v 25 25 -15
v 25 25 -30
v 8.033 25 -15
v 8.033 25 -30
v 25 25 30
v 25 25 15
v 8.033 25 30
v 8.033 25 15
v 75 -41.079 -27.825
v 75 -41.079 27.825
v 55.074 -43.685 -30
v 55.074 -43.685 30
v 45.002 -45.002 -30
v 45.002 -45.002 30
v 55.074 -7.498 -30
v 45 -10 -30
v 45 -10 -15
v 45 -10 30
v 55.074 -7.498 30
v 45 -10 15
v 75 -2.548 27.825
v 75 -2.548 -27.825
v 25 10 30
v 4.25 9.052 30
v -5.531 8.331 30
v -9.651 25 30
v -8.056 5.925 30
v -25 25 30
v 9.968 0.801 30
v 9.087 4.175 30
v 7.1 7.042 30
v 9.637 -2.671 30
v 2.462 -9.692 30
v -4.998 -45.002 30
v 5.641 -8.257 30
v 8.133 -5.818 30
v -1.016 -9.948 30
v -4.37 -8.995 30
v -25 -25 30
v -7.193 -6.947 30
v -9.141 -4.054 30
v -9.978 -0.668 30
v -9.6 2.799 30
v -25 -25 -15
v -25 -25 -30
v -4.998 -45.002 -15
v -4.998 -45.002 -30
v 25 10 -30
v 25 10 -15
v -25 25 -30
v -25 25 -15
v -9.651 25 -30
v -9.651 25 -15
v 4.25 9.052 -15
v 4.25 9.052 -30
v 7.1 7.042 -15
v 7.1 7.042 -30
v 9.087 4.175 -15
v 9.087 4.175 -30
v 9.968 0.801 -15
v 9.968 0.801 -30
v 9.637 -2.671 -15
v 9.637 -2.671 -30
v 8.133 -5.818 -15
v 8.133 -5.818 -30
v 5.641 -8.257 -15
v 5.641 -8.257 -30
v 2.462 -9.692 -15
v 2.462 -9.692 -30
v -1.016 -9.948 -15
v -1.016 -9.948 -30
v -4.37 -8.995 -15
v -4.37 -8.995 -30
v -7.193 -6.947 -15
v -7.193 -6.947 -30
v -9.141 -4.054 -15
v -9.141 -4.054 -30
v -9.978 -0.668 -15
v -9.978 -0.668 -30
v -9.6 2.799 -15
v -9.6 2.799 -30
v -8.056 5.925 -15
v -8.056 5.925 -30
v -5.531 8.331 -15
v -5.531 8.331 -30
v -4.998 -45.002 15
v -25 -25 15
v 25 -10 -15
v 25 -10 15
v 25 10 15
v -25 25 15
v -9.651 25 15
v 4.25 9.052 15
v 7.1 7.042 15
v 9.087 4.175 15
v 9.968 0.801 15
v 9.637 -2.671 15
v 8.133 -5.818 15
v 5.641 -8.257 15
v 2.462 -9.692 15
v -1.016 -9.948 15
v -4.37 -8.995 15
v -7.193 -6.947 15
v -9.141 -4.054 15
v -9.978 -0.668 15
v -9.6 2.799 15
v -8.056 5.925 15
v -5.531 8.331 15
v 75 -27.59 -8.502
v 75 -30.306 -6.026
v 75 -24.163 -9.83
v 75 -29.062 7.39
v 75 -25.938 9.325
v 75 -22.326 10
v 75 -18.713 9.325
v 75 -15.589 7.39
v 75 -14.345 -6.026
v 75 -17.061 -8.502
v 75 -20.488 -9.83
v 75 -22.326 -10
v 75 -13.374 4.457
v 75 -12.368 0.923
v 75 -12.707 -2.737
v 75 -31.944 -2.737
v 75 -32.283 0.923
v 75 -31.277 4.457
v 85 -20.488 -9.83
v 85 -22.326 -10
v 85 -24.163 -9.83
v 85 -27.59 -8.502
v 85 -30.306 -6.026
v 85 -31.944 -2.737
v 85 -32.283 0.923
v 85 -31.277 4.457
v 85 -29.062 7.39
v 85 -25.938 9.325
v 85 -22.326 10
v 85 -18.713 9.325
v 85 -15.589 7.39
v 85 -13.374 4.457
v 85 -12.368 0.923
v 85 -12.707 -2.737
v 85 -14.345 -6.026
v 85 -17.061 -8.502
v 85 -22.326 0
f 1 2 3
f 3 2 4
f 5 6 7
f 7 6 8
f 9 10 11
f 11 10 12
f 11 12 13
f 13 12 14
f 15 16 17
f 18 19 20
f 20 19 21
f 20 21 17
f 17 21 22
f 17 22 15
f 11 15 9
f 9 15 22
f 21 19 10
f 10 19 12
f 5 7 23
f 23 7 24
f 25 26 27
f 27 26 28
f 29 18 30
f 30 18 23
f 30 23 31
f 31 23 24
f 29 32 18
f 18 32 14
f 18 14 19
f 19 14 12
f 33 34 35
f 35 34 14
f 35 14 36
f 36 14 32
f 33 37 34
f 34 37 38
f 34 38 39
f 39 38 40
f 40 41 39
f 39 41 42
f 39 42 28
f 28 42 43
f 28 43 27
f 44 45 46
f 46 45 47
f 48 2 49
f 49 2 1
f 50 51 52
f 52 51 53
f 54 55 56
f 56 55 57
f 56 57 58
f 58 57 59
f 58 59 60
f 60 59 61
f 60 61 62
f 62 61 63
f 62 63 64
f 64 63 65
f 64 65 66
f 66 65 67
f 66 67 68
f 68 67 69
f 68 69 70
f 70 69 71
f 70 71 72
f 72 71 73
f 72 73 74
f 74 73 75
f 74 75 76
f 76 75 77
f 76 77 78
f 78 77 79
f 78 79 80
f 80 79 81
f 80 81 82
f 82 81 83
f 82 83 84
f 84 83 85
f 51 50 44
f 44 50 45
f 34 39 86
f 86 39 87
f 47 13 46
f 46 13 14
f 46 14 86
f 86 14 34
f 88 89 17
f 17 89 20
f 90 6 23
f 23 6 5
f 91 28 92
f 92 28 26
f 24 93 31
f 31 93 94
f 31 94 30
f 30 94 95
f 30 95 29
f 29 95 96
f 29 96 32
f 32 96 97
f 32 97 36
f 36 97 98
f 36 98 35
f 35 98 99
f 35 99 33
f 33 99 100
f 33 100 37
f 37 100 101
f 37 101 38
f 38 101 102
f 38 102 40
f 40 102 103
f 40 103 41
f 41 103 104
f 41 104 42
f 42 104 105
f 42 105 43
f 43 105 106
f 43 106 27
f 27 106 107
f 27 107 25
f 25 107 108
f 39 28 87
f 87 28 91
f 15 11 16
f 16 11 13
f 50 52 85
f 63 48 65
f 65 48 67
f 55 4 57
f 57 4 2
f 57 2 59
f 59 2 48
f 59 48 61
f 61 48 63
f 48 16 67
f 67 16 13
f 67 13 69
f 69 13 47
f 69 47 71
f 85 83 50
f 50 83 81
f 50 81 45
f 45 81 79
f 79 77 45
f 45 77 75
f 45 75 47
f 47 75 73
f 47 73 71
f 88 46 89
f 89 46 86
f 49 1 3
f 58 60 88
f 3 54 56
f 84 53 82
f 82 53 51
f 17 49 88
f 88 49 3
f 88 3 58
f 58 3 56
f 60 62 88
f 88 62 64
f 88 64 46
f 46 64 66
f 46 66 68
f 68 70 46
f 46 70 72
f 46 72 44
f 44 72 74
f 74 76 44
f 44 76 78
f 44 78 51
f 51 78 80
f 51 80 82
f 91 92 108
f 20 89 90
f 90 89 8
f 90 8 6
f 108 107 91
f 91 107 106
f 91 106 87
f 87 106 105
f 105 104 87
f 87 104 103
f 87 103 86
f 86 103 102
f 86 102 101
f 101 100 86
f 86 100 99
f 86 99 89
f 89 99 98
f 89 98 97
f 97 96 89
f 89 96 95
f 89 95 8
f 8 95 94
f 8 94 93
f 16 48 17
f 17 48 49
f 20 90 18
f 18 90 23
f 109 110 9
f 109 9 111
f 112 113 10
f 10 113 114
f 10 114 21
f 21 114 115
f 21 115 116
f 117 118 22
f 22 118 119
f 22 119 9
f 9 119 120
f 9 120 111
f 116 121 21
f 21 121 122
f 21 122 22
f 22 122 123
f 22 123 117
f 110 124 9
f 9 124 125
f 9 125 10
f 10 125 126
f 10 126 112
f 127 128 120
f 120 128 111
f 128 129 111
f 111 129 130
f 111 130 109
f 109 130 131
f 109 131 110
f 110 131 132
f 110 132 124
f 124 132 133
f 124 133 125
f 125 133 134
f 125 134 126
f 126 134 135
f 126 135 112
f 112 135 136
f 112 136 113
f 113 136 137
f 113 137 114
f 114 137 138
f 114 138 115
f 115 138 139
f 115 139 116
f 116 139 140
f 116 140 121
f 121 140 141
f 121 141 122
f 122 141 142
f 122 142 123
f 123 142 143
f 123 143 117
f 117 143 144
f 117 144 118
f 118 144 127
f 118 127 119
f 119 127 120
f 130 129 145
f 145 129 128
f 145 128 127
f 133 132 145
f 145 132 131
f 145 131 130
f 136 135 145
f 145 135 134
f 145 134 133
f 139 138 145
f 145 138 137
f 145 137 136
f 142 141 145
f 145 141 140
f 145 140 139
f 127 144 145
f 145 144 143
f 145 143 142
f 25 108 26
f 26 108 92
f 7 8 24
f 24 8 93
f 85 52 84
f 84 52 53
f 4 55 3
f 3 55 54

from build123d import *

# Parameters (mm, degrees)
SKETCH1_R               = 10
BOSS_EXTRUDE2_DEPTH     = 30
SKETCH4_R               = 10
CUT_EXTRUDE1_DEPTH      = 15
CHAMFER1_SIZE           = 20
CUT_EXTRUDE2_DEPTH      = 174.638139858
CUT_EXTRUDE2_DEPTH_BACK = 174.638139858
BOSS_EXTRUDE3_DEPTH     = 45
CUT_EXTRUDE3_DEPTH      = 198.547978004
CUT_EXTRUDE3_DEPTH_BACK = 15
SKETCH6_3_R             = 9
SKETCH8_W               = 15
SKETCH8_H               = 36
BOSS_EXTRUDE4_DEPTH     = 45.000002
SKETCH10_R              = 9
CUT_EXTRUDE4_DEPTH      = 198.547978004
BOSS_EXTRUDE5_DEPTH     = 10
CHAMFER2_SIZE           = 12
CUT_EXTRUDE5_DEPTH      = 40
CUT_EXTRUDE6_DEPTH      = 217.852953896
CUT_EXTRUDE6_DEPTH_BACK = 217.852953896
SKETCH14_OUTSIDE_W      = 287.488
SKETCH14_OUTSIDE_H      = 112.488
SKETCH14_OUTSIDE_W_2    = 100
SKETCH14_OUTSIDE_H_2    = 60
SKETCH15_R              = 10
BOSS_EXTRUDE6_DEPTH     = 10
CUT_EXTRUDE7_REACH      = 115.359


# Some blends are built 0.0001 mm under size
with BuildPart() as part:
    # Sketch1 → Boss-Extrude2 (new, symmetric)
    # profile 1 of 3: a face of its own
    with BuildSketch(Plane.XY):
        Polygon((25, -10), (-4.997737685, -45.002262315), (-25, -25), (-25, 25), (25, 25), align=None)
        Circle(SKETCH1_R, mode=Mode.SUBTRACT)
    # profile 2 of 3: a face of its own
    with BuildSketch(Plane.XY):
        Polygon((45, -10), (25, -10), (-4.997737685, -45.002262315), (45.002262315, -45.002262315), (75, -41.079226753), (75, -2.548159698), align=None)
    # profile 3 of 3: a face of its own
    with BuildSketch(Plane.XY):
        Polygon((130, 11.113547523), (75, -2.548159698), (75, -41.079226753), (130, -33.886452477), (165, -33.886452477), (165, 11.113547523), align=None)
    extrude(amount=BOSS_EXTRUDE2_DEPTH, both=True)

    # Sketch4 → Cut-Extrude1 (cut, symmetric)
    with BuildSketch(Plane.XY):
        Polygon((25, -10), (-4.997737685, -45.002262315), (-25, -25), (-25, 25), (25, 25), align=None)
        Circle(SKETCH4_R, mode=Mode.SUBTRACT)
    extrude(amount=CUT_EXTRUDE1_DEPTH, both=True, mode=Mode.SUBTRACT)

    # Chamfer1
    chamfer1_edges = [part.edges().sort_by_distance(p)[0] for p in [
        (25, -10, -22.5),
        (25, -10, 22.5),
    ]]
    chamfer(chamfer1_edges, length=CHAMFER1_SIZE - 0.0001)  # a hair under: the kernel refuses the full size

    # Sketch5 → Cut-Extrude2 (cut, two sides: drawn at the far end of the back side and taken through both)
    with BuildSketch(Plane(origin=(0, 0, 0), x_dir=(1, 0, 0), z_dir=(0, 1, 0)).offset(-CUT_EXTRUDE2_DEPTH_BACK)):
        Polygon((165, -30), (165, -18), (55.074227224, -30), align=None)
        Polygon((165, 18), (165, 30), (55.074227224, 30), align=None)
    extrude(amount=CUT_EXTRUDE2_DEPTH + CUT_EXTRUDE2_DEPTH_BACK, mode=Mode.SUBTRACT)

    # Sketch6 → Boss-Extrude3 (add)
    with BuildSketch(Plane(origin=(165, 0, 0), x_dir=(0, 0, -1), z_dir=(1, 0, 0))):
        with BuildLine():
            Line((-18, -33.886452477), (18, -33.886452477))
            Line((18, -33.886452477), (18, -17.886452477))
            ThreePointArc((18, -17.886452477), (0, -25.375680921), (-18, -17.886452477))
            Line((-18, -17.886452477), (-18, -33.886452477))
        make_face()
    extrude(amount=BOSS_EXTRUDE3_DEPTH)

    # Sketch6<3> → Cut-Extrude3 (cut, two sides: drawn at the far end of the back side and taken through both)
    with BuildSketch(Plane(origin=(165, 0, 0), x_dir=(0, 0, -1), z_dir=(1, 0, 0)).offset(-CUT_EXTRUDE3_DEPTH_BACK)):
        with Locations(Location((0, -1.886452477, 0), (0, 0, 90))):
            Circle(SKETCH6_3_R)
    extrude(amount=CUT_EXTRUDE3_DEPTH + CUT_EXTRUDE3_DEPTH_BACK, mode=Mode.SUBTRACT)

    # Sketch8 → Boss-Extrude4 (add)
    with BuildSketch(Plane.XZ.offset(33.886452477)):
        with Locations((202.5, 0)):
            Rectangle(SKETCH8_W, SKETCH8_H)
    extrude(amount=-BOSS_EXTRUDE4_DEPTH)

    # Sketch10 → Cut-Extrude4 (cut, through all)
    with BuildSketch(Plane(origin=(165, 0, 0), x_dir=(0, 0, -1), z_dir=(1, 0, 0))):
        with Locations(Location((0, -1.886452477, 0), (0, 0, 90))):
            Circle(SKETCH10_R)
    extrude(amount=CUT_EXTRUDE4_DEPTH, mode=Mode.SUBTRACT)

    # Sketch11 → Boss-Extrude5 (add)
    with BuildSketch(Plane.XZ.offset(33.886452477)):
        Polygon((130, 21.82076004), (130, -21.82076004), (165, -18), (210, -18), (210, 18), (165, 18), align=None)
    extrude(amount=BOSS_EXTRUDE5_DEPTH)

    # Chamfer2
    # the kernel refuses this chamfer: 12 mm, written as the material it takes off along each edge
    with BuildSketch(Plane(origin=(130, -43.886452477, 52.680955896), x_dir=(-0.02749587661058907, 0.9996219169112965, 0), z_dir=(0, 0, -1))) as chamfer2_piece_1_section:
        Polygon((CHAMFER2_SIZE * 0.999621916911, CHAMFER2_SIZE * 0.0274958766106), (-CHAMFER2_SIZE * 0.0274958766106, CHAMFER2_SIZE * 0.999621916911), (0, 0), align=None)
    chamfer2_piece_1 = extrude(amount=105.361911791, mode=Mode.PRIVATE)
    chamfer2_piece_1 = split(chamfer2_piece_1, bisect_by=Plane(origin=(133.216907805, -33.465752628, 0), z_dir=(0.1296735244167249, -0.9915567442488328, 0)), keep=Keep.TOP, mode=Mode.PRIVATE)
    add(chamfer2_piece_1, mode=Mode.SUBTRACT)

    # Sketch13 → Cut-Extrude5 (cut)
    with BuildSketch(Plane.XY.offset(18)):
        with BuildLine():
            Line((165, -17.886452477), (195, -17.886452477))
            ThreePointArc((195, -17.886452477), (180, -25.224548687), (165, -17.886452477))
        make_face()
    extrude(amount=-CUT_EXTRUDE5_DEPTH, mode=Mode.SUBTRACT)

    # Sketch14 outside → Cut-Extrude6 (cut, two sides: drawn at the far end of the back side and taken through both)
    with BuildSketch(Plane(origin=(0, 0, 0), x_dir=(1, 0, 0), z_dir=(0, 1, 0)).offset(-CUT_EXTRUDE6_DEPTH_BACK)):
        with Locations((92.5, 0)):
            Rectangle(SKETCH14_OUTSIDE_W, SKETCH14_OUTSIDE_H)
        with Locations((25, 0)):
            Rectangle(SKETCH14_OUTSIDE_W_2, SKETCH14_OUTSIDE_H_2, mode=Mode.SUBTRACT)
    extrude(amount=CUT_EXTRUDE6_DEPTH + CUT_EXTRUDE6_DEPTH_BACK, mode=Mode.SUBTRACT)

    # Sketch15 → Boss-Extrude6 (add)
    with BuildSketch(Plane(origin=(75, 0, 0), x_dir=(0, 0, -1), z_dir=(1, 0, 0))):
        with Locations((0, -22.3255367)):
            Circle(SKETCH15_R)
    extrude(amount=BOSS_EXTRUDE6_DEPTH)

    # Cut-Extrude7: up to this face of the body (flat: up to its plane)
    cut_extrude7_end = Plane(part.part.faces().sort_by_distance((12.358249011, -13.375403826, 30))[0])
    # Sketch16 → Cut-Extrude7 (cut, up to the picked face)
    with BuildSketch(Plane(origin=(0, 0, -30), x_dir=(-1, 0, 0), z_dir=(0, 0, -1)), mode=Mode.PRIVATE) as cut_extrude7_sk1:
        with BuildLine():
            Line((-8.033000326, 25), (-4.250478251, 9.051708935))
            ThreePointArc((-4.250478251, 9.051708935), (0.734596104, 9.972981929), (5.530881389, 8.331227464))
            Line((5.530881389, 8.331227464), (9.650814715, 25))
            Line((9.650814715, 25), (-8.033000326, 25))
        make_face()
    cut_extrude7_tool1 = split(extrude(cut_extrude7_sk1.sketch, amount=-CUT_EXTRUDE7_REACH, mode=Mode.PRIVATE), bisect_by=cut_extrude7_end, keep=Keep.BOTH, mode=Mode.PRIVATE)
    add(cut_extrude7_tool1.solids().sort_by(Axis((-0.802445, 17.957811, -30), (0, 0, 1)))[0], mode=Mode.SUBTRACT)


solid = part.part
